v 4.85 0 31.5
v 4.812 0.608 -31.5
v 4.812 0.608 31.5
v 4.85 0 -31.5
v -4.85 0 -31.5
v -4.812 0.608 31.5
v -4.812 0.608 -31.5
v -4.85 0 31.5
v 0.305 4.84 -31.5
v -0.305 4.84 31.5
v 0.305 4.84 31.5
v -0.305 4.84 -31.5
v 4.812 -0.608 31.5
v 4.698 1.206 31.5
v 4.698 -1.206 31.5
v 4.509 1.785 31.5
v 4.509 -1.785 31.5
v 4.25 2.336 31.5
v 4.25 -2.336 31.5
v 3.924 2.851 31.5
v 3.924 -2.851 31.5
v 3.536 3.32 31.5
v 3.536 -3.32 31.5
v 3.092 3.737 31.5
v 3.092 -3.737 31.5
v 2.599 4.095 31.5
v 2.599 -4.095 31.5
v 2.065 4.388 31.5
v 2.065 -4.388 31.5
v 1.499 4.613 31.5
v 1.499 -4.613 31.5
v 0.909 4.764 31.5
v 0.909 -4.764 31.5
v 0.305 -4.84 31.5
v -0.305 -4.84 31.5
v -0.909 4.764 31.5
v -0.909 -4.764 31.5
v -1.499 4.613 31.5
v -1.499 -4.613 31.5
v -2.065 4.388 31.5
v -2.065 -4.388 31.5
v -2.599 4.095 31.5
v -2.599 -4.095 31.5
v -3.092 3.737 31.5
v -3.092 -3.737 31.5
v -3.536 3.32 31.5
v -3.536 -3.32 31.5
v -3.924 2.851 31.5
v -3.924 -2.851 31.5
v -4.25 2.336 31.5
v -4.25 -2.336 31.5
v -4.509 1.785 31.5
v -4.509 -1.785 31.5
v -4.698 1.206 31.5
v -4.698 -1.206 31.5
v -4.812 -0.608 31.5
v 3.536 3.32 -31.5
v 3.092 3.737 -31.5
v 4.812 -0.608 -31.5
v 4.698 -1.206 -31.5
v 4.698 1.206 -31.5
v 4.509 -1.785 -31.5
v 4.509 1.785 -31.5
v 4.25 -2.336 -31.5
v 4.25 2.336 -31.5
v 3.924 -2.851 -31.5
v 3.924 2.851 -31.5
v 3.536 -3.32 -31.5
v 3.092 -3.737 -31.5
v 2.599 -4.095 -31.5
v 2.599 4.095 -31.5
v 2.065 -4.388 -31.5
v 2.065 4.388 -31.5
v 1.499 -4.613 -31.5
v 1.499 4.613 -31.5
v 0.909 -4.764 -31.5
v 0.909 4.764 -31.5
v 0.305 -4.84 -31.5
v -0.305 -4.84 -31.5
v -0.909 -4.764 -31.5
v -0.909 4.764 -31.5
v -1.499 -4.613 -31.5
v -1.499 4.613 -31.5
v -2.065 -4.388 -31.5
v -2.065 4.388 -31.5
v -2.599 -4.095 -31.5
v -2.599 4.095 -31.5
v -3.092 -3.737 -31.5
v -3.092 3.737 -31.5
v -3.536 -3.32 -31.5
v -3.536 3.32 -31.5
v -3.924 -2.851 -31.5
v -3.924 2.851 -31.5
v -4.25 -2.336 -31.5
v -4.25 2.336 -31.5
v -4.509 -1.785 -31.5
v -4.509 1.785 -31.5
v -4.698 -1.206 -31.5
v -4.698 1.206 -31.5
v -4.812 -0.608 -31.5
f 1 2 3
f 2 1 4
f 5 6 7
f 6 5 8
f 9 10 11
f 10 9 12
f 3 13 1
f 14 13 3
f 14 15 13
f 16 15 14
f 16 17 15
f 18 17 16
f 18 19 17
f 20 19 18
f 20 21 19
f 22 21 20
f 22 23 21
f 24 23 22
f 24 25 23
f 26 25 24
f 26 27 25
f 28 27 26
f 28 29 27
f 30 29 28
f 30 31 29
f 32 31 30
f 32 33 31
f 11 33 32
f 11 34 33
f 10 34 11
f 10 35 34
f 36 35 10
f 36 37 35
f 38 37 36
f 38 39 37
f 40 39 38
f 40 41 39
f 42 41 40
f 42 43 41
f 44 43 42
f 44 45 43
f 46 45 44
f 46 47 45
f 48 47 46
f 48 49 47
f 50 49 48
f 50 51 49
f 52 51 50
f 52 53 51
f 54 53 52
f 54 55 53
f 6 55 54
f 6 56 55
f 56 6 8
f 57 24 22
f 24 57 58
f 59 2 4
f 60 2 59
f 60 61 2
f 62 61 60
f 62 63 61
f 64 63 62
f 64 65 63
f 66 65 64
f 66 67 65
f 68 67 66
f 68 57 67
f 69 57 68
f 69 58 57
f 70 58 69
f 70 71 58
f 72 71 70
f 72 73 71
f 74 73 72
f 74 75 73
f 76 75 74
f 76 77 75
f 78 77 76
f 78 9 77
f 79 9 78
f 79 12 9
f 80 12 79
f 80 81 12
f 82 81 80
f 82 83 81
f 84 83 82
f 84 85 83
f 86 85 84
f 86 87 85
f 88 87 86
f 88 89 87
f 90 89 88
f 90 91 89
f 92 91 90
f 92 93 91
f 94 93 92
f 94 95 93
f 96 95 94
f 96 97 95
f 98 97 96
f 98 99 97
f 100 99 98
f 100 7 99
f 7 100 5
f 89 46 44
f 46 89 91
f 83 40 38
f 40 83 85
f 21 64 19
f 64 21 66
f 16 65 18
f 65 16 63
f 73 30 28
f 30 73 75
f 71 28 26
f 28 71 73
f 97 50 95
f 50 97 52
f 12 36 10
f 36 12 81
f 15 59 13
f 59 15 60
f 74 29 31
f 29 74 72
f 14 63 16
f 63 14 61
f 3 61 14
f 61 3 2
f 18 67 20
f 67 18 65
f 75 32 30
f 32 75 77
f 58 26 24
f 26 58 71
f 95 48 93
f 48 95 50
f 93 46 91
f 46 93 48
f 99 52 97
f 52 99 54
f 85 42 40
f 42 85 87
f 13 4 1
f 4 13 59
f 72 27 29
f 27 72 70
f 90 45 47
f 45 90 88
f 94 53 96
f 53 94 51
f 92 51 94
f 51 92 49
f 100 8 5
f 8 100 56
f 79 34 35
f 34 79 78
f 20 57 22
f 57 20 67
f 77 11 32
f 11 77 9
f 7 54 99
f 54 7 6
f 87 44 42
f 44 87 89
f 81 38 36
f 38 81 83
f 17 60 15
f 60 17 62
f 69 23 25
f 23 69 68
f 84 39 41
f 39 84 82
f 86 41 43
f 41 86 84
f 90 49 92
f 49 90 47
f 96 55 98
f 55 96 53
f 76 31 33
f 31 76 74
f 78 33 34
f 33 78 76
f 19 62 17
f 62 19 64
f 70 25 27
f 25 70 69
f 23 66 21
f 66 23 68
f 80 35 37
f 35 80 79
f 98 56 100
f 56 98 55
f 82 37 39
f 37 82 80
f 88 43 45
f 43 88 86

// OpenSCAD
$fn = 50;


difference() {
	union() {
		translate(v = [0, 0, -31.5000000000]) {
			cylinder(h = 63, r = 4.8500000000);
		}
	}
	union() {
		translate(v = [0, 0, -100.0000000000]) {
			cylinder(h = 200, r = 0);
		}
	}
}
